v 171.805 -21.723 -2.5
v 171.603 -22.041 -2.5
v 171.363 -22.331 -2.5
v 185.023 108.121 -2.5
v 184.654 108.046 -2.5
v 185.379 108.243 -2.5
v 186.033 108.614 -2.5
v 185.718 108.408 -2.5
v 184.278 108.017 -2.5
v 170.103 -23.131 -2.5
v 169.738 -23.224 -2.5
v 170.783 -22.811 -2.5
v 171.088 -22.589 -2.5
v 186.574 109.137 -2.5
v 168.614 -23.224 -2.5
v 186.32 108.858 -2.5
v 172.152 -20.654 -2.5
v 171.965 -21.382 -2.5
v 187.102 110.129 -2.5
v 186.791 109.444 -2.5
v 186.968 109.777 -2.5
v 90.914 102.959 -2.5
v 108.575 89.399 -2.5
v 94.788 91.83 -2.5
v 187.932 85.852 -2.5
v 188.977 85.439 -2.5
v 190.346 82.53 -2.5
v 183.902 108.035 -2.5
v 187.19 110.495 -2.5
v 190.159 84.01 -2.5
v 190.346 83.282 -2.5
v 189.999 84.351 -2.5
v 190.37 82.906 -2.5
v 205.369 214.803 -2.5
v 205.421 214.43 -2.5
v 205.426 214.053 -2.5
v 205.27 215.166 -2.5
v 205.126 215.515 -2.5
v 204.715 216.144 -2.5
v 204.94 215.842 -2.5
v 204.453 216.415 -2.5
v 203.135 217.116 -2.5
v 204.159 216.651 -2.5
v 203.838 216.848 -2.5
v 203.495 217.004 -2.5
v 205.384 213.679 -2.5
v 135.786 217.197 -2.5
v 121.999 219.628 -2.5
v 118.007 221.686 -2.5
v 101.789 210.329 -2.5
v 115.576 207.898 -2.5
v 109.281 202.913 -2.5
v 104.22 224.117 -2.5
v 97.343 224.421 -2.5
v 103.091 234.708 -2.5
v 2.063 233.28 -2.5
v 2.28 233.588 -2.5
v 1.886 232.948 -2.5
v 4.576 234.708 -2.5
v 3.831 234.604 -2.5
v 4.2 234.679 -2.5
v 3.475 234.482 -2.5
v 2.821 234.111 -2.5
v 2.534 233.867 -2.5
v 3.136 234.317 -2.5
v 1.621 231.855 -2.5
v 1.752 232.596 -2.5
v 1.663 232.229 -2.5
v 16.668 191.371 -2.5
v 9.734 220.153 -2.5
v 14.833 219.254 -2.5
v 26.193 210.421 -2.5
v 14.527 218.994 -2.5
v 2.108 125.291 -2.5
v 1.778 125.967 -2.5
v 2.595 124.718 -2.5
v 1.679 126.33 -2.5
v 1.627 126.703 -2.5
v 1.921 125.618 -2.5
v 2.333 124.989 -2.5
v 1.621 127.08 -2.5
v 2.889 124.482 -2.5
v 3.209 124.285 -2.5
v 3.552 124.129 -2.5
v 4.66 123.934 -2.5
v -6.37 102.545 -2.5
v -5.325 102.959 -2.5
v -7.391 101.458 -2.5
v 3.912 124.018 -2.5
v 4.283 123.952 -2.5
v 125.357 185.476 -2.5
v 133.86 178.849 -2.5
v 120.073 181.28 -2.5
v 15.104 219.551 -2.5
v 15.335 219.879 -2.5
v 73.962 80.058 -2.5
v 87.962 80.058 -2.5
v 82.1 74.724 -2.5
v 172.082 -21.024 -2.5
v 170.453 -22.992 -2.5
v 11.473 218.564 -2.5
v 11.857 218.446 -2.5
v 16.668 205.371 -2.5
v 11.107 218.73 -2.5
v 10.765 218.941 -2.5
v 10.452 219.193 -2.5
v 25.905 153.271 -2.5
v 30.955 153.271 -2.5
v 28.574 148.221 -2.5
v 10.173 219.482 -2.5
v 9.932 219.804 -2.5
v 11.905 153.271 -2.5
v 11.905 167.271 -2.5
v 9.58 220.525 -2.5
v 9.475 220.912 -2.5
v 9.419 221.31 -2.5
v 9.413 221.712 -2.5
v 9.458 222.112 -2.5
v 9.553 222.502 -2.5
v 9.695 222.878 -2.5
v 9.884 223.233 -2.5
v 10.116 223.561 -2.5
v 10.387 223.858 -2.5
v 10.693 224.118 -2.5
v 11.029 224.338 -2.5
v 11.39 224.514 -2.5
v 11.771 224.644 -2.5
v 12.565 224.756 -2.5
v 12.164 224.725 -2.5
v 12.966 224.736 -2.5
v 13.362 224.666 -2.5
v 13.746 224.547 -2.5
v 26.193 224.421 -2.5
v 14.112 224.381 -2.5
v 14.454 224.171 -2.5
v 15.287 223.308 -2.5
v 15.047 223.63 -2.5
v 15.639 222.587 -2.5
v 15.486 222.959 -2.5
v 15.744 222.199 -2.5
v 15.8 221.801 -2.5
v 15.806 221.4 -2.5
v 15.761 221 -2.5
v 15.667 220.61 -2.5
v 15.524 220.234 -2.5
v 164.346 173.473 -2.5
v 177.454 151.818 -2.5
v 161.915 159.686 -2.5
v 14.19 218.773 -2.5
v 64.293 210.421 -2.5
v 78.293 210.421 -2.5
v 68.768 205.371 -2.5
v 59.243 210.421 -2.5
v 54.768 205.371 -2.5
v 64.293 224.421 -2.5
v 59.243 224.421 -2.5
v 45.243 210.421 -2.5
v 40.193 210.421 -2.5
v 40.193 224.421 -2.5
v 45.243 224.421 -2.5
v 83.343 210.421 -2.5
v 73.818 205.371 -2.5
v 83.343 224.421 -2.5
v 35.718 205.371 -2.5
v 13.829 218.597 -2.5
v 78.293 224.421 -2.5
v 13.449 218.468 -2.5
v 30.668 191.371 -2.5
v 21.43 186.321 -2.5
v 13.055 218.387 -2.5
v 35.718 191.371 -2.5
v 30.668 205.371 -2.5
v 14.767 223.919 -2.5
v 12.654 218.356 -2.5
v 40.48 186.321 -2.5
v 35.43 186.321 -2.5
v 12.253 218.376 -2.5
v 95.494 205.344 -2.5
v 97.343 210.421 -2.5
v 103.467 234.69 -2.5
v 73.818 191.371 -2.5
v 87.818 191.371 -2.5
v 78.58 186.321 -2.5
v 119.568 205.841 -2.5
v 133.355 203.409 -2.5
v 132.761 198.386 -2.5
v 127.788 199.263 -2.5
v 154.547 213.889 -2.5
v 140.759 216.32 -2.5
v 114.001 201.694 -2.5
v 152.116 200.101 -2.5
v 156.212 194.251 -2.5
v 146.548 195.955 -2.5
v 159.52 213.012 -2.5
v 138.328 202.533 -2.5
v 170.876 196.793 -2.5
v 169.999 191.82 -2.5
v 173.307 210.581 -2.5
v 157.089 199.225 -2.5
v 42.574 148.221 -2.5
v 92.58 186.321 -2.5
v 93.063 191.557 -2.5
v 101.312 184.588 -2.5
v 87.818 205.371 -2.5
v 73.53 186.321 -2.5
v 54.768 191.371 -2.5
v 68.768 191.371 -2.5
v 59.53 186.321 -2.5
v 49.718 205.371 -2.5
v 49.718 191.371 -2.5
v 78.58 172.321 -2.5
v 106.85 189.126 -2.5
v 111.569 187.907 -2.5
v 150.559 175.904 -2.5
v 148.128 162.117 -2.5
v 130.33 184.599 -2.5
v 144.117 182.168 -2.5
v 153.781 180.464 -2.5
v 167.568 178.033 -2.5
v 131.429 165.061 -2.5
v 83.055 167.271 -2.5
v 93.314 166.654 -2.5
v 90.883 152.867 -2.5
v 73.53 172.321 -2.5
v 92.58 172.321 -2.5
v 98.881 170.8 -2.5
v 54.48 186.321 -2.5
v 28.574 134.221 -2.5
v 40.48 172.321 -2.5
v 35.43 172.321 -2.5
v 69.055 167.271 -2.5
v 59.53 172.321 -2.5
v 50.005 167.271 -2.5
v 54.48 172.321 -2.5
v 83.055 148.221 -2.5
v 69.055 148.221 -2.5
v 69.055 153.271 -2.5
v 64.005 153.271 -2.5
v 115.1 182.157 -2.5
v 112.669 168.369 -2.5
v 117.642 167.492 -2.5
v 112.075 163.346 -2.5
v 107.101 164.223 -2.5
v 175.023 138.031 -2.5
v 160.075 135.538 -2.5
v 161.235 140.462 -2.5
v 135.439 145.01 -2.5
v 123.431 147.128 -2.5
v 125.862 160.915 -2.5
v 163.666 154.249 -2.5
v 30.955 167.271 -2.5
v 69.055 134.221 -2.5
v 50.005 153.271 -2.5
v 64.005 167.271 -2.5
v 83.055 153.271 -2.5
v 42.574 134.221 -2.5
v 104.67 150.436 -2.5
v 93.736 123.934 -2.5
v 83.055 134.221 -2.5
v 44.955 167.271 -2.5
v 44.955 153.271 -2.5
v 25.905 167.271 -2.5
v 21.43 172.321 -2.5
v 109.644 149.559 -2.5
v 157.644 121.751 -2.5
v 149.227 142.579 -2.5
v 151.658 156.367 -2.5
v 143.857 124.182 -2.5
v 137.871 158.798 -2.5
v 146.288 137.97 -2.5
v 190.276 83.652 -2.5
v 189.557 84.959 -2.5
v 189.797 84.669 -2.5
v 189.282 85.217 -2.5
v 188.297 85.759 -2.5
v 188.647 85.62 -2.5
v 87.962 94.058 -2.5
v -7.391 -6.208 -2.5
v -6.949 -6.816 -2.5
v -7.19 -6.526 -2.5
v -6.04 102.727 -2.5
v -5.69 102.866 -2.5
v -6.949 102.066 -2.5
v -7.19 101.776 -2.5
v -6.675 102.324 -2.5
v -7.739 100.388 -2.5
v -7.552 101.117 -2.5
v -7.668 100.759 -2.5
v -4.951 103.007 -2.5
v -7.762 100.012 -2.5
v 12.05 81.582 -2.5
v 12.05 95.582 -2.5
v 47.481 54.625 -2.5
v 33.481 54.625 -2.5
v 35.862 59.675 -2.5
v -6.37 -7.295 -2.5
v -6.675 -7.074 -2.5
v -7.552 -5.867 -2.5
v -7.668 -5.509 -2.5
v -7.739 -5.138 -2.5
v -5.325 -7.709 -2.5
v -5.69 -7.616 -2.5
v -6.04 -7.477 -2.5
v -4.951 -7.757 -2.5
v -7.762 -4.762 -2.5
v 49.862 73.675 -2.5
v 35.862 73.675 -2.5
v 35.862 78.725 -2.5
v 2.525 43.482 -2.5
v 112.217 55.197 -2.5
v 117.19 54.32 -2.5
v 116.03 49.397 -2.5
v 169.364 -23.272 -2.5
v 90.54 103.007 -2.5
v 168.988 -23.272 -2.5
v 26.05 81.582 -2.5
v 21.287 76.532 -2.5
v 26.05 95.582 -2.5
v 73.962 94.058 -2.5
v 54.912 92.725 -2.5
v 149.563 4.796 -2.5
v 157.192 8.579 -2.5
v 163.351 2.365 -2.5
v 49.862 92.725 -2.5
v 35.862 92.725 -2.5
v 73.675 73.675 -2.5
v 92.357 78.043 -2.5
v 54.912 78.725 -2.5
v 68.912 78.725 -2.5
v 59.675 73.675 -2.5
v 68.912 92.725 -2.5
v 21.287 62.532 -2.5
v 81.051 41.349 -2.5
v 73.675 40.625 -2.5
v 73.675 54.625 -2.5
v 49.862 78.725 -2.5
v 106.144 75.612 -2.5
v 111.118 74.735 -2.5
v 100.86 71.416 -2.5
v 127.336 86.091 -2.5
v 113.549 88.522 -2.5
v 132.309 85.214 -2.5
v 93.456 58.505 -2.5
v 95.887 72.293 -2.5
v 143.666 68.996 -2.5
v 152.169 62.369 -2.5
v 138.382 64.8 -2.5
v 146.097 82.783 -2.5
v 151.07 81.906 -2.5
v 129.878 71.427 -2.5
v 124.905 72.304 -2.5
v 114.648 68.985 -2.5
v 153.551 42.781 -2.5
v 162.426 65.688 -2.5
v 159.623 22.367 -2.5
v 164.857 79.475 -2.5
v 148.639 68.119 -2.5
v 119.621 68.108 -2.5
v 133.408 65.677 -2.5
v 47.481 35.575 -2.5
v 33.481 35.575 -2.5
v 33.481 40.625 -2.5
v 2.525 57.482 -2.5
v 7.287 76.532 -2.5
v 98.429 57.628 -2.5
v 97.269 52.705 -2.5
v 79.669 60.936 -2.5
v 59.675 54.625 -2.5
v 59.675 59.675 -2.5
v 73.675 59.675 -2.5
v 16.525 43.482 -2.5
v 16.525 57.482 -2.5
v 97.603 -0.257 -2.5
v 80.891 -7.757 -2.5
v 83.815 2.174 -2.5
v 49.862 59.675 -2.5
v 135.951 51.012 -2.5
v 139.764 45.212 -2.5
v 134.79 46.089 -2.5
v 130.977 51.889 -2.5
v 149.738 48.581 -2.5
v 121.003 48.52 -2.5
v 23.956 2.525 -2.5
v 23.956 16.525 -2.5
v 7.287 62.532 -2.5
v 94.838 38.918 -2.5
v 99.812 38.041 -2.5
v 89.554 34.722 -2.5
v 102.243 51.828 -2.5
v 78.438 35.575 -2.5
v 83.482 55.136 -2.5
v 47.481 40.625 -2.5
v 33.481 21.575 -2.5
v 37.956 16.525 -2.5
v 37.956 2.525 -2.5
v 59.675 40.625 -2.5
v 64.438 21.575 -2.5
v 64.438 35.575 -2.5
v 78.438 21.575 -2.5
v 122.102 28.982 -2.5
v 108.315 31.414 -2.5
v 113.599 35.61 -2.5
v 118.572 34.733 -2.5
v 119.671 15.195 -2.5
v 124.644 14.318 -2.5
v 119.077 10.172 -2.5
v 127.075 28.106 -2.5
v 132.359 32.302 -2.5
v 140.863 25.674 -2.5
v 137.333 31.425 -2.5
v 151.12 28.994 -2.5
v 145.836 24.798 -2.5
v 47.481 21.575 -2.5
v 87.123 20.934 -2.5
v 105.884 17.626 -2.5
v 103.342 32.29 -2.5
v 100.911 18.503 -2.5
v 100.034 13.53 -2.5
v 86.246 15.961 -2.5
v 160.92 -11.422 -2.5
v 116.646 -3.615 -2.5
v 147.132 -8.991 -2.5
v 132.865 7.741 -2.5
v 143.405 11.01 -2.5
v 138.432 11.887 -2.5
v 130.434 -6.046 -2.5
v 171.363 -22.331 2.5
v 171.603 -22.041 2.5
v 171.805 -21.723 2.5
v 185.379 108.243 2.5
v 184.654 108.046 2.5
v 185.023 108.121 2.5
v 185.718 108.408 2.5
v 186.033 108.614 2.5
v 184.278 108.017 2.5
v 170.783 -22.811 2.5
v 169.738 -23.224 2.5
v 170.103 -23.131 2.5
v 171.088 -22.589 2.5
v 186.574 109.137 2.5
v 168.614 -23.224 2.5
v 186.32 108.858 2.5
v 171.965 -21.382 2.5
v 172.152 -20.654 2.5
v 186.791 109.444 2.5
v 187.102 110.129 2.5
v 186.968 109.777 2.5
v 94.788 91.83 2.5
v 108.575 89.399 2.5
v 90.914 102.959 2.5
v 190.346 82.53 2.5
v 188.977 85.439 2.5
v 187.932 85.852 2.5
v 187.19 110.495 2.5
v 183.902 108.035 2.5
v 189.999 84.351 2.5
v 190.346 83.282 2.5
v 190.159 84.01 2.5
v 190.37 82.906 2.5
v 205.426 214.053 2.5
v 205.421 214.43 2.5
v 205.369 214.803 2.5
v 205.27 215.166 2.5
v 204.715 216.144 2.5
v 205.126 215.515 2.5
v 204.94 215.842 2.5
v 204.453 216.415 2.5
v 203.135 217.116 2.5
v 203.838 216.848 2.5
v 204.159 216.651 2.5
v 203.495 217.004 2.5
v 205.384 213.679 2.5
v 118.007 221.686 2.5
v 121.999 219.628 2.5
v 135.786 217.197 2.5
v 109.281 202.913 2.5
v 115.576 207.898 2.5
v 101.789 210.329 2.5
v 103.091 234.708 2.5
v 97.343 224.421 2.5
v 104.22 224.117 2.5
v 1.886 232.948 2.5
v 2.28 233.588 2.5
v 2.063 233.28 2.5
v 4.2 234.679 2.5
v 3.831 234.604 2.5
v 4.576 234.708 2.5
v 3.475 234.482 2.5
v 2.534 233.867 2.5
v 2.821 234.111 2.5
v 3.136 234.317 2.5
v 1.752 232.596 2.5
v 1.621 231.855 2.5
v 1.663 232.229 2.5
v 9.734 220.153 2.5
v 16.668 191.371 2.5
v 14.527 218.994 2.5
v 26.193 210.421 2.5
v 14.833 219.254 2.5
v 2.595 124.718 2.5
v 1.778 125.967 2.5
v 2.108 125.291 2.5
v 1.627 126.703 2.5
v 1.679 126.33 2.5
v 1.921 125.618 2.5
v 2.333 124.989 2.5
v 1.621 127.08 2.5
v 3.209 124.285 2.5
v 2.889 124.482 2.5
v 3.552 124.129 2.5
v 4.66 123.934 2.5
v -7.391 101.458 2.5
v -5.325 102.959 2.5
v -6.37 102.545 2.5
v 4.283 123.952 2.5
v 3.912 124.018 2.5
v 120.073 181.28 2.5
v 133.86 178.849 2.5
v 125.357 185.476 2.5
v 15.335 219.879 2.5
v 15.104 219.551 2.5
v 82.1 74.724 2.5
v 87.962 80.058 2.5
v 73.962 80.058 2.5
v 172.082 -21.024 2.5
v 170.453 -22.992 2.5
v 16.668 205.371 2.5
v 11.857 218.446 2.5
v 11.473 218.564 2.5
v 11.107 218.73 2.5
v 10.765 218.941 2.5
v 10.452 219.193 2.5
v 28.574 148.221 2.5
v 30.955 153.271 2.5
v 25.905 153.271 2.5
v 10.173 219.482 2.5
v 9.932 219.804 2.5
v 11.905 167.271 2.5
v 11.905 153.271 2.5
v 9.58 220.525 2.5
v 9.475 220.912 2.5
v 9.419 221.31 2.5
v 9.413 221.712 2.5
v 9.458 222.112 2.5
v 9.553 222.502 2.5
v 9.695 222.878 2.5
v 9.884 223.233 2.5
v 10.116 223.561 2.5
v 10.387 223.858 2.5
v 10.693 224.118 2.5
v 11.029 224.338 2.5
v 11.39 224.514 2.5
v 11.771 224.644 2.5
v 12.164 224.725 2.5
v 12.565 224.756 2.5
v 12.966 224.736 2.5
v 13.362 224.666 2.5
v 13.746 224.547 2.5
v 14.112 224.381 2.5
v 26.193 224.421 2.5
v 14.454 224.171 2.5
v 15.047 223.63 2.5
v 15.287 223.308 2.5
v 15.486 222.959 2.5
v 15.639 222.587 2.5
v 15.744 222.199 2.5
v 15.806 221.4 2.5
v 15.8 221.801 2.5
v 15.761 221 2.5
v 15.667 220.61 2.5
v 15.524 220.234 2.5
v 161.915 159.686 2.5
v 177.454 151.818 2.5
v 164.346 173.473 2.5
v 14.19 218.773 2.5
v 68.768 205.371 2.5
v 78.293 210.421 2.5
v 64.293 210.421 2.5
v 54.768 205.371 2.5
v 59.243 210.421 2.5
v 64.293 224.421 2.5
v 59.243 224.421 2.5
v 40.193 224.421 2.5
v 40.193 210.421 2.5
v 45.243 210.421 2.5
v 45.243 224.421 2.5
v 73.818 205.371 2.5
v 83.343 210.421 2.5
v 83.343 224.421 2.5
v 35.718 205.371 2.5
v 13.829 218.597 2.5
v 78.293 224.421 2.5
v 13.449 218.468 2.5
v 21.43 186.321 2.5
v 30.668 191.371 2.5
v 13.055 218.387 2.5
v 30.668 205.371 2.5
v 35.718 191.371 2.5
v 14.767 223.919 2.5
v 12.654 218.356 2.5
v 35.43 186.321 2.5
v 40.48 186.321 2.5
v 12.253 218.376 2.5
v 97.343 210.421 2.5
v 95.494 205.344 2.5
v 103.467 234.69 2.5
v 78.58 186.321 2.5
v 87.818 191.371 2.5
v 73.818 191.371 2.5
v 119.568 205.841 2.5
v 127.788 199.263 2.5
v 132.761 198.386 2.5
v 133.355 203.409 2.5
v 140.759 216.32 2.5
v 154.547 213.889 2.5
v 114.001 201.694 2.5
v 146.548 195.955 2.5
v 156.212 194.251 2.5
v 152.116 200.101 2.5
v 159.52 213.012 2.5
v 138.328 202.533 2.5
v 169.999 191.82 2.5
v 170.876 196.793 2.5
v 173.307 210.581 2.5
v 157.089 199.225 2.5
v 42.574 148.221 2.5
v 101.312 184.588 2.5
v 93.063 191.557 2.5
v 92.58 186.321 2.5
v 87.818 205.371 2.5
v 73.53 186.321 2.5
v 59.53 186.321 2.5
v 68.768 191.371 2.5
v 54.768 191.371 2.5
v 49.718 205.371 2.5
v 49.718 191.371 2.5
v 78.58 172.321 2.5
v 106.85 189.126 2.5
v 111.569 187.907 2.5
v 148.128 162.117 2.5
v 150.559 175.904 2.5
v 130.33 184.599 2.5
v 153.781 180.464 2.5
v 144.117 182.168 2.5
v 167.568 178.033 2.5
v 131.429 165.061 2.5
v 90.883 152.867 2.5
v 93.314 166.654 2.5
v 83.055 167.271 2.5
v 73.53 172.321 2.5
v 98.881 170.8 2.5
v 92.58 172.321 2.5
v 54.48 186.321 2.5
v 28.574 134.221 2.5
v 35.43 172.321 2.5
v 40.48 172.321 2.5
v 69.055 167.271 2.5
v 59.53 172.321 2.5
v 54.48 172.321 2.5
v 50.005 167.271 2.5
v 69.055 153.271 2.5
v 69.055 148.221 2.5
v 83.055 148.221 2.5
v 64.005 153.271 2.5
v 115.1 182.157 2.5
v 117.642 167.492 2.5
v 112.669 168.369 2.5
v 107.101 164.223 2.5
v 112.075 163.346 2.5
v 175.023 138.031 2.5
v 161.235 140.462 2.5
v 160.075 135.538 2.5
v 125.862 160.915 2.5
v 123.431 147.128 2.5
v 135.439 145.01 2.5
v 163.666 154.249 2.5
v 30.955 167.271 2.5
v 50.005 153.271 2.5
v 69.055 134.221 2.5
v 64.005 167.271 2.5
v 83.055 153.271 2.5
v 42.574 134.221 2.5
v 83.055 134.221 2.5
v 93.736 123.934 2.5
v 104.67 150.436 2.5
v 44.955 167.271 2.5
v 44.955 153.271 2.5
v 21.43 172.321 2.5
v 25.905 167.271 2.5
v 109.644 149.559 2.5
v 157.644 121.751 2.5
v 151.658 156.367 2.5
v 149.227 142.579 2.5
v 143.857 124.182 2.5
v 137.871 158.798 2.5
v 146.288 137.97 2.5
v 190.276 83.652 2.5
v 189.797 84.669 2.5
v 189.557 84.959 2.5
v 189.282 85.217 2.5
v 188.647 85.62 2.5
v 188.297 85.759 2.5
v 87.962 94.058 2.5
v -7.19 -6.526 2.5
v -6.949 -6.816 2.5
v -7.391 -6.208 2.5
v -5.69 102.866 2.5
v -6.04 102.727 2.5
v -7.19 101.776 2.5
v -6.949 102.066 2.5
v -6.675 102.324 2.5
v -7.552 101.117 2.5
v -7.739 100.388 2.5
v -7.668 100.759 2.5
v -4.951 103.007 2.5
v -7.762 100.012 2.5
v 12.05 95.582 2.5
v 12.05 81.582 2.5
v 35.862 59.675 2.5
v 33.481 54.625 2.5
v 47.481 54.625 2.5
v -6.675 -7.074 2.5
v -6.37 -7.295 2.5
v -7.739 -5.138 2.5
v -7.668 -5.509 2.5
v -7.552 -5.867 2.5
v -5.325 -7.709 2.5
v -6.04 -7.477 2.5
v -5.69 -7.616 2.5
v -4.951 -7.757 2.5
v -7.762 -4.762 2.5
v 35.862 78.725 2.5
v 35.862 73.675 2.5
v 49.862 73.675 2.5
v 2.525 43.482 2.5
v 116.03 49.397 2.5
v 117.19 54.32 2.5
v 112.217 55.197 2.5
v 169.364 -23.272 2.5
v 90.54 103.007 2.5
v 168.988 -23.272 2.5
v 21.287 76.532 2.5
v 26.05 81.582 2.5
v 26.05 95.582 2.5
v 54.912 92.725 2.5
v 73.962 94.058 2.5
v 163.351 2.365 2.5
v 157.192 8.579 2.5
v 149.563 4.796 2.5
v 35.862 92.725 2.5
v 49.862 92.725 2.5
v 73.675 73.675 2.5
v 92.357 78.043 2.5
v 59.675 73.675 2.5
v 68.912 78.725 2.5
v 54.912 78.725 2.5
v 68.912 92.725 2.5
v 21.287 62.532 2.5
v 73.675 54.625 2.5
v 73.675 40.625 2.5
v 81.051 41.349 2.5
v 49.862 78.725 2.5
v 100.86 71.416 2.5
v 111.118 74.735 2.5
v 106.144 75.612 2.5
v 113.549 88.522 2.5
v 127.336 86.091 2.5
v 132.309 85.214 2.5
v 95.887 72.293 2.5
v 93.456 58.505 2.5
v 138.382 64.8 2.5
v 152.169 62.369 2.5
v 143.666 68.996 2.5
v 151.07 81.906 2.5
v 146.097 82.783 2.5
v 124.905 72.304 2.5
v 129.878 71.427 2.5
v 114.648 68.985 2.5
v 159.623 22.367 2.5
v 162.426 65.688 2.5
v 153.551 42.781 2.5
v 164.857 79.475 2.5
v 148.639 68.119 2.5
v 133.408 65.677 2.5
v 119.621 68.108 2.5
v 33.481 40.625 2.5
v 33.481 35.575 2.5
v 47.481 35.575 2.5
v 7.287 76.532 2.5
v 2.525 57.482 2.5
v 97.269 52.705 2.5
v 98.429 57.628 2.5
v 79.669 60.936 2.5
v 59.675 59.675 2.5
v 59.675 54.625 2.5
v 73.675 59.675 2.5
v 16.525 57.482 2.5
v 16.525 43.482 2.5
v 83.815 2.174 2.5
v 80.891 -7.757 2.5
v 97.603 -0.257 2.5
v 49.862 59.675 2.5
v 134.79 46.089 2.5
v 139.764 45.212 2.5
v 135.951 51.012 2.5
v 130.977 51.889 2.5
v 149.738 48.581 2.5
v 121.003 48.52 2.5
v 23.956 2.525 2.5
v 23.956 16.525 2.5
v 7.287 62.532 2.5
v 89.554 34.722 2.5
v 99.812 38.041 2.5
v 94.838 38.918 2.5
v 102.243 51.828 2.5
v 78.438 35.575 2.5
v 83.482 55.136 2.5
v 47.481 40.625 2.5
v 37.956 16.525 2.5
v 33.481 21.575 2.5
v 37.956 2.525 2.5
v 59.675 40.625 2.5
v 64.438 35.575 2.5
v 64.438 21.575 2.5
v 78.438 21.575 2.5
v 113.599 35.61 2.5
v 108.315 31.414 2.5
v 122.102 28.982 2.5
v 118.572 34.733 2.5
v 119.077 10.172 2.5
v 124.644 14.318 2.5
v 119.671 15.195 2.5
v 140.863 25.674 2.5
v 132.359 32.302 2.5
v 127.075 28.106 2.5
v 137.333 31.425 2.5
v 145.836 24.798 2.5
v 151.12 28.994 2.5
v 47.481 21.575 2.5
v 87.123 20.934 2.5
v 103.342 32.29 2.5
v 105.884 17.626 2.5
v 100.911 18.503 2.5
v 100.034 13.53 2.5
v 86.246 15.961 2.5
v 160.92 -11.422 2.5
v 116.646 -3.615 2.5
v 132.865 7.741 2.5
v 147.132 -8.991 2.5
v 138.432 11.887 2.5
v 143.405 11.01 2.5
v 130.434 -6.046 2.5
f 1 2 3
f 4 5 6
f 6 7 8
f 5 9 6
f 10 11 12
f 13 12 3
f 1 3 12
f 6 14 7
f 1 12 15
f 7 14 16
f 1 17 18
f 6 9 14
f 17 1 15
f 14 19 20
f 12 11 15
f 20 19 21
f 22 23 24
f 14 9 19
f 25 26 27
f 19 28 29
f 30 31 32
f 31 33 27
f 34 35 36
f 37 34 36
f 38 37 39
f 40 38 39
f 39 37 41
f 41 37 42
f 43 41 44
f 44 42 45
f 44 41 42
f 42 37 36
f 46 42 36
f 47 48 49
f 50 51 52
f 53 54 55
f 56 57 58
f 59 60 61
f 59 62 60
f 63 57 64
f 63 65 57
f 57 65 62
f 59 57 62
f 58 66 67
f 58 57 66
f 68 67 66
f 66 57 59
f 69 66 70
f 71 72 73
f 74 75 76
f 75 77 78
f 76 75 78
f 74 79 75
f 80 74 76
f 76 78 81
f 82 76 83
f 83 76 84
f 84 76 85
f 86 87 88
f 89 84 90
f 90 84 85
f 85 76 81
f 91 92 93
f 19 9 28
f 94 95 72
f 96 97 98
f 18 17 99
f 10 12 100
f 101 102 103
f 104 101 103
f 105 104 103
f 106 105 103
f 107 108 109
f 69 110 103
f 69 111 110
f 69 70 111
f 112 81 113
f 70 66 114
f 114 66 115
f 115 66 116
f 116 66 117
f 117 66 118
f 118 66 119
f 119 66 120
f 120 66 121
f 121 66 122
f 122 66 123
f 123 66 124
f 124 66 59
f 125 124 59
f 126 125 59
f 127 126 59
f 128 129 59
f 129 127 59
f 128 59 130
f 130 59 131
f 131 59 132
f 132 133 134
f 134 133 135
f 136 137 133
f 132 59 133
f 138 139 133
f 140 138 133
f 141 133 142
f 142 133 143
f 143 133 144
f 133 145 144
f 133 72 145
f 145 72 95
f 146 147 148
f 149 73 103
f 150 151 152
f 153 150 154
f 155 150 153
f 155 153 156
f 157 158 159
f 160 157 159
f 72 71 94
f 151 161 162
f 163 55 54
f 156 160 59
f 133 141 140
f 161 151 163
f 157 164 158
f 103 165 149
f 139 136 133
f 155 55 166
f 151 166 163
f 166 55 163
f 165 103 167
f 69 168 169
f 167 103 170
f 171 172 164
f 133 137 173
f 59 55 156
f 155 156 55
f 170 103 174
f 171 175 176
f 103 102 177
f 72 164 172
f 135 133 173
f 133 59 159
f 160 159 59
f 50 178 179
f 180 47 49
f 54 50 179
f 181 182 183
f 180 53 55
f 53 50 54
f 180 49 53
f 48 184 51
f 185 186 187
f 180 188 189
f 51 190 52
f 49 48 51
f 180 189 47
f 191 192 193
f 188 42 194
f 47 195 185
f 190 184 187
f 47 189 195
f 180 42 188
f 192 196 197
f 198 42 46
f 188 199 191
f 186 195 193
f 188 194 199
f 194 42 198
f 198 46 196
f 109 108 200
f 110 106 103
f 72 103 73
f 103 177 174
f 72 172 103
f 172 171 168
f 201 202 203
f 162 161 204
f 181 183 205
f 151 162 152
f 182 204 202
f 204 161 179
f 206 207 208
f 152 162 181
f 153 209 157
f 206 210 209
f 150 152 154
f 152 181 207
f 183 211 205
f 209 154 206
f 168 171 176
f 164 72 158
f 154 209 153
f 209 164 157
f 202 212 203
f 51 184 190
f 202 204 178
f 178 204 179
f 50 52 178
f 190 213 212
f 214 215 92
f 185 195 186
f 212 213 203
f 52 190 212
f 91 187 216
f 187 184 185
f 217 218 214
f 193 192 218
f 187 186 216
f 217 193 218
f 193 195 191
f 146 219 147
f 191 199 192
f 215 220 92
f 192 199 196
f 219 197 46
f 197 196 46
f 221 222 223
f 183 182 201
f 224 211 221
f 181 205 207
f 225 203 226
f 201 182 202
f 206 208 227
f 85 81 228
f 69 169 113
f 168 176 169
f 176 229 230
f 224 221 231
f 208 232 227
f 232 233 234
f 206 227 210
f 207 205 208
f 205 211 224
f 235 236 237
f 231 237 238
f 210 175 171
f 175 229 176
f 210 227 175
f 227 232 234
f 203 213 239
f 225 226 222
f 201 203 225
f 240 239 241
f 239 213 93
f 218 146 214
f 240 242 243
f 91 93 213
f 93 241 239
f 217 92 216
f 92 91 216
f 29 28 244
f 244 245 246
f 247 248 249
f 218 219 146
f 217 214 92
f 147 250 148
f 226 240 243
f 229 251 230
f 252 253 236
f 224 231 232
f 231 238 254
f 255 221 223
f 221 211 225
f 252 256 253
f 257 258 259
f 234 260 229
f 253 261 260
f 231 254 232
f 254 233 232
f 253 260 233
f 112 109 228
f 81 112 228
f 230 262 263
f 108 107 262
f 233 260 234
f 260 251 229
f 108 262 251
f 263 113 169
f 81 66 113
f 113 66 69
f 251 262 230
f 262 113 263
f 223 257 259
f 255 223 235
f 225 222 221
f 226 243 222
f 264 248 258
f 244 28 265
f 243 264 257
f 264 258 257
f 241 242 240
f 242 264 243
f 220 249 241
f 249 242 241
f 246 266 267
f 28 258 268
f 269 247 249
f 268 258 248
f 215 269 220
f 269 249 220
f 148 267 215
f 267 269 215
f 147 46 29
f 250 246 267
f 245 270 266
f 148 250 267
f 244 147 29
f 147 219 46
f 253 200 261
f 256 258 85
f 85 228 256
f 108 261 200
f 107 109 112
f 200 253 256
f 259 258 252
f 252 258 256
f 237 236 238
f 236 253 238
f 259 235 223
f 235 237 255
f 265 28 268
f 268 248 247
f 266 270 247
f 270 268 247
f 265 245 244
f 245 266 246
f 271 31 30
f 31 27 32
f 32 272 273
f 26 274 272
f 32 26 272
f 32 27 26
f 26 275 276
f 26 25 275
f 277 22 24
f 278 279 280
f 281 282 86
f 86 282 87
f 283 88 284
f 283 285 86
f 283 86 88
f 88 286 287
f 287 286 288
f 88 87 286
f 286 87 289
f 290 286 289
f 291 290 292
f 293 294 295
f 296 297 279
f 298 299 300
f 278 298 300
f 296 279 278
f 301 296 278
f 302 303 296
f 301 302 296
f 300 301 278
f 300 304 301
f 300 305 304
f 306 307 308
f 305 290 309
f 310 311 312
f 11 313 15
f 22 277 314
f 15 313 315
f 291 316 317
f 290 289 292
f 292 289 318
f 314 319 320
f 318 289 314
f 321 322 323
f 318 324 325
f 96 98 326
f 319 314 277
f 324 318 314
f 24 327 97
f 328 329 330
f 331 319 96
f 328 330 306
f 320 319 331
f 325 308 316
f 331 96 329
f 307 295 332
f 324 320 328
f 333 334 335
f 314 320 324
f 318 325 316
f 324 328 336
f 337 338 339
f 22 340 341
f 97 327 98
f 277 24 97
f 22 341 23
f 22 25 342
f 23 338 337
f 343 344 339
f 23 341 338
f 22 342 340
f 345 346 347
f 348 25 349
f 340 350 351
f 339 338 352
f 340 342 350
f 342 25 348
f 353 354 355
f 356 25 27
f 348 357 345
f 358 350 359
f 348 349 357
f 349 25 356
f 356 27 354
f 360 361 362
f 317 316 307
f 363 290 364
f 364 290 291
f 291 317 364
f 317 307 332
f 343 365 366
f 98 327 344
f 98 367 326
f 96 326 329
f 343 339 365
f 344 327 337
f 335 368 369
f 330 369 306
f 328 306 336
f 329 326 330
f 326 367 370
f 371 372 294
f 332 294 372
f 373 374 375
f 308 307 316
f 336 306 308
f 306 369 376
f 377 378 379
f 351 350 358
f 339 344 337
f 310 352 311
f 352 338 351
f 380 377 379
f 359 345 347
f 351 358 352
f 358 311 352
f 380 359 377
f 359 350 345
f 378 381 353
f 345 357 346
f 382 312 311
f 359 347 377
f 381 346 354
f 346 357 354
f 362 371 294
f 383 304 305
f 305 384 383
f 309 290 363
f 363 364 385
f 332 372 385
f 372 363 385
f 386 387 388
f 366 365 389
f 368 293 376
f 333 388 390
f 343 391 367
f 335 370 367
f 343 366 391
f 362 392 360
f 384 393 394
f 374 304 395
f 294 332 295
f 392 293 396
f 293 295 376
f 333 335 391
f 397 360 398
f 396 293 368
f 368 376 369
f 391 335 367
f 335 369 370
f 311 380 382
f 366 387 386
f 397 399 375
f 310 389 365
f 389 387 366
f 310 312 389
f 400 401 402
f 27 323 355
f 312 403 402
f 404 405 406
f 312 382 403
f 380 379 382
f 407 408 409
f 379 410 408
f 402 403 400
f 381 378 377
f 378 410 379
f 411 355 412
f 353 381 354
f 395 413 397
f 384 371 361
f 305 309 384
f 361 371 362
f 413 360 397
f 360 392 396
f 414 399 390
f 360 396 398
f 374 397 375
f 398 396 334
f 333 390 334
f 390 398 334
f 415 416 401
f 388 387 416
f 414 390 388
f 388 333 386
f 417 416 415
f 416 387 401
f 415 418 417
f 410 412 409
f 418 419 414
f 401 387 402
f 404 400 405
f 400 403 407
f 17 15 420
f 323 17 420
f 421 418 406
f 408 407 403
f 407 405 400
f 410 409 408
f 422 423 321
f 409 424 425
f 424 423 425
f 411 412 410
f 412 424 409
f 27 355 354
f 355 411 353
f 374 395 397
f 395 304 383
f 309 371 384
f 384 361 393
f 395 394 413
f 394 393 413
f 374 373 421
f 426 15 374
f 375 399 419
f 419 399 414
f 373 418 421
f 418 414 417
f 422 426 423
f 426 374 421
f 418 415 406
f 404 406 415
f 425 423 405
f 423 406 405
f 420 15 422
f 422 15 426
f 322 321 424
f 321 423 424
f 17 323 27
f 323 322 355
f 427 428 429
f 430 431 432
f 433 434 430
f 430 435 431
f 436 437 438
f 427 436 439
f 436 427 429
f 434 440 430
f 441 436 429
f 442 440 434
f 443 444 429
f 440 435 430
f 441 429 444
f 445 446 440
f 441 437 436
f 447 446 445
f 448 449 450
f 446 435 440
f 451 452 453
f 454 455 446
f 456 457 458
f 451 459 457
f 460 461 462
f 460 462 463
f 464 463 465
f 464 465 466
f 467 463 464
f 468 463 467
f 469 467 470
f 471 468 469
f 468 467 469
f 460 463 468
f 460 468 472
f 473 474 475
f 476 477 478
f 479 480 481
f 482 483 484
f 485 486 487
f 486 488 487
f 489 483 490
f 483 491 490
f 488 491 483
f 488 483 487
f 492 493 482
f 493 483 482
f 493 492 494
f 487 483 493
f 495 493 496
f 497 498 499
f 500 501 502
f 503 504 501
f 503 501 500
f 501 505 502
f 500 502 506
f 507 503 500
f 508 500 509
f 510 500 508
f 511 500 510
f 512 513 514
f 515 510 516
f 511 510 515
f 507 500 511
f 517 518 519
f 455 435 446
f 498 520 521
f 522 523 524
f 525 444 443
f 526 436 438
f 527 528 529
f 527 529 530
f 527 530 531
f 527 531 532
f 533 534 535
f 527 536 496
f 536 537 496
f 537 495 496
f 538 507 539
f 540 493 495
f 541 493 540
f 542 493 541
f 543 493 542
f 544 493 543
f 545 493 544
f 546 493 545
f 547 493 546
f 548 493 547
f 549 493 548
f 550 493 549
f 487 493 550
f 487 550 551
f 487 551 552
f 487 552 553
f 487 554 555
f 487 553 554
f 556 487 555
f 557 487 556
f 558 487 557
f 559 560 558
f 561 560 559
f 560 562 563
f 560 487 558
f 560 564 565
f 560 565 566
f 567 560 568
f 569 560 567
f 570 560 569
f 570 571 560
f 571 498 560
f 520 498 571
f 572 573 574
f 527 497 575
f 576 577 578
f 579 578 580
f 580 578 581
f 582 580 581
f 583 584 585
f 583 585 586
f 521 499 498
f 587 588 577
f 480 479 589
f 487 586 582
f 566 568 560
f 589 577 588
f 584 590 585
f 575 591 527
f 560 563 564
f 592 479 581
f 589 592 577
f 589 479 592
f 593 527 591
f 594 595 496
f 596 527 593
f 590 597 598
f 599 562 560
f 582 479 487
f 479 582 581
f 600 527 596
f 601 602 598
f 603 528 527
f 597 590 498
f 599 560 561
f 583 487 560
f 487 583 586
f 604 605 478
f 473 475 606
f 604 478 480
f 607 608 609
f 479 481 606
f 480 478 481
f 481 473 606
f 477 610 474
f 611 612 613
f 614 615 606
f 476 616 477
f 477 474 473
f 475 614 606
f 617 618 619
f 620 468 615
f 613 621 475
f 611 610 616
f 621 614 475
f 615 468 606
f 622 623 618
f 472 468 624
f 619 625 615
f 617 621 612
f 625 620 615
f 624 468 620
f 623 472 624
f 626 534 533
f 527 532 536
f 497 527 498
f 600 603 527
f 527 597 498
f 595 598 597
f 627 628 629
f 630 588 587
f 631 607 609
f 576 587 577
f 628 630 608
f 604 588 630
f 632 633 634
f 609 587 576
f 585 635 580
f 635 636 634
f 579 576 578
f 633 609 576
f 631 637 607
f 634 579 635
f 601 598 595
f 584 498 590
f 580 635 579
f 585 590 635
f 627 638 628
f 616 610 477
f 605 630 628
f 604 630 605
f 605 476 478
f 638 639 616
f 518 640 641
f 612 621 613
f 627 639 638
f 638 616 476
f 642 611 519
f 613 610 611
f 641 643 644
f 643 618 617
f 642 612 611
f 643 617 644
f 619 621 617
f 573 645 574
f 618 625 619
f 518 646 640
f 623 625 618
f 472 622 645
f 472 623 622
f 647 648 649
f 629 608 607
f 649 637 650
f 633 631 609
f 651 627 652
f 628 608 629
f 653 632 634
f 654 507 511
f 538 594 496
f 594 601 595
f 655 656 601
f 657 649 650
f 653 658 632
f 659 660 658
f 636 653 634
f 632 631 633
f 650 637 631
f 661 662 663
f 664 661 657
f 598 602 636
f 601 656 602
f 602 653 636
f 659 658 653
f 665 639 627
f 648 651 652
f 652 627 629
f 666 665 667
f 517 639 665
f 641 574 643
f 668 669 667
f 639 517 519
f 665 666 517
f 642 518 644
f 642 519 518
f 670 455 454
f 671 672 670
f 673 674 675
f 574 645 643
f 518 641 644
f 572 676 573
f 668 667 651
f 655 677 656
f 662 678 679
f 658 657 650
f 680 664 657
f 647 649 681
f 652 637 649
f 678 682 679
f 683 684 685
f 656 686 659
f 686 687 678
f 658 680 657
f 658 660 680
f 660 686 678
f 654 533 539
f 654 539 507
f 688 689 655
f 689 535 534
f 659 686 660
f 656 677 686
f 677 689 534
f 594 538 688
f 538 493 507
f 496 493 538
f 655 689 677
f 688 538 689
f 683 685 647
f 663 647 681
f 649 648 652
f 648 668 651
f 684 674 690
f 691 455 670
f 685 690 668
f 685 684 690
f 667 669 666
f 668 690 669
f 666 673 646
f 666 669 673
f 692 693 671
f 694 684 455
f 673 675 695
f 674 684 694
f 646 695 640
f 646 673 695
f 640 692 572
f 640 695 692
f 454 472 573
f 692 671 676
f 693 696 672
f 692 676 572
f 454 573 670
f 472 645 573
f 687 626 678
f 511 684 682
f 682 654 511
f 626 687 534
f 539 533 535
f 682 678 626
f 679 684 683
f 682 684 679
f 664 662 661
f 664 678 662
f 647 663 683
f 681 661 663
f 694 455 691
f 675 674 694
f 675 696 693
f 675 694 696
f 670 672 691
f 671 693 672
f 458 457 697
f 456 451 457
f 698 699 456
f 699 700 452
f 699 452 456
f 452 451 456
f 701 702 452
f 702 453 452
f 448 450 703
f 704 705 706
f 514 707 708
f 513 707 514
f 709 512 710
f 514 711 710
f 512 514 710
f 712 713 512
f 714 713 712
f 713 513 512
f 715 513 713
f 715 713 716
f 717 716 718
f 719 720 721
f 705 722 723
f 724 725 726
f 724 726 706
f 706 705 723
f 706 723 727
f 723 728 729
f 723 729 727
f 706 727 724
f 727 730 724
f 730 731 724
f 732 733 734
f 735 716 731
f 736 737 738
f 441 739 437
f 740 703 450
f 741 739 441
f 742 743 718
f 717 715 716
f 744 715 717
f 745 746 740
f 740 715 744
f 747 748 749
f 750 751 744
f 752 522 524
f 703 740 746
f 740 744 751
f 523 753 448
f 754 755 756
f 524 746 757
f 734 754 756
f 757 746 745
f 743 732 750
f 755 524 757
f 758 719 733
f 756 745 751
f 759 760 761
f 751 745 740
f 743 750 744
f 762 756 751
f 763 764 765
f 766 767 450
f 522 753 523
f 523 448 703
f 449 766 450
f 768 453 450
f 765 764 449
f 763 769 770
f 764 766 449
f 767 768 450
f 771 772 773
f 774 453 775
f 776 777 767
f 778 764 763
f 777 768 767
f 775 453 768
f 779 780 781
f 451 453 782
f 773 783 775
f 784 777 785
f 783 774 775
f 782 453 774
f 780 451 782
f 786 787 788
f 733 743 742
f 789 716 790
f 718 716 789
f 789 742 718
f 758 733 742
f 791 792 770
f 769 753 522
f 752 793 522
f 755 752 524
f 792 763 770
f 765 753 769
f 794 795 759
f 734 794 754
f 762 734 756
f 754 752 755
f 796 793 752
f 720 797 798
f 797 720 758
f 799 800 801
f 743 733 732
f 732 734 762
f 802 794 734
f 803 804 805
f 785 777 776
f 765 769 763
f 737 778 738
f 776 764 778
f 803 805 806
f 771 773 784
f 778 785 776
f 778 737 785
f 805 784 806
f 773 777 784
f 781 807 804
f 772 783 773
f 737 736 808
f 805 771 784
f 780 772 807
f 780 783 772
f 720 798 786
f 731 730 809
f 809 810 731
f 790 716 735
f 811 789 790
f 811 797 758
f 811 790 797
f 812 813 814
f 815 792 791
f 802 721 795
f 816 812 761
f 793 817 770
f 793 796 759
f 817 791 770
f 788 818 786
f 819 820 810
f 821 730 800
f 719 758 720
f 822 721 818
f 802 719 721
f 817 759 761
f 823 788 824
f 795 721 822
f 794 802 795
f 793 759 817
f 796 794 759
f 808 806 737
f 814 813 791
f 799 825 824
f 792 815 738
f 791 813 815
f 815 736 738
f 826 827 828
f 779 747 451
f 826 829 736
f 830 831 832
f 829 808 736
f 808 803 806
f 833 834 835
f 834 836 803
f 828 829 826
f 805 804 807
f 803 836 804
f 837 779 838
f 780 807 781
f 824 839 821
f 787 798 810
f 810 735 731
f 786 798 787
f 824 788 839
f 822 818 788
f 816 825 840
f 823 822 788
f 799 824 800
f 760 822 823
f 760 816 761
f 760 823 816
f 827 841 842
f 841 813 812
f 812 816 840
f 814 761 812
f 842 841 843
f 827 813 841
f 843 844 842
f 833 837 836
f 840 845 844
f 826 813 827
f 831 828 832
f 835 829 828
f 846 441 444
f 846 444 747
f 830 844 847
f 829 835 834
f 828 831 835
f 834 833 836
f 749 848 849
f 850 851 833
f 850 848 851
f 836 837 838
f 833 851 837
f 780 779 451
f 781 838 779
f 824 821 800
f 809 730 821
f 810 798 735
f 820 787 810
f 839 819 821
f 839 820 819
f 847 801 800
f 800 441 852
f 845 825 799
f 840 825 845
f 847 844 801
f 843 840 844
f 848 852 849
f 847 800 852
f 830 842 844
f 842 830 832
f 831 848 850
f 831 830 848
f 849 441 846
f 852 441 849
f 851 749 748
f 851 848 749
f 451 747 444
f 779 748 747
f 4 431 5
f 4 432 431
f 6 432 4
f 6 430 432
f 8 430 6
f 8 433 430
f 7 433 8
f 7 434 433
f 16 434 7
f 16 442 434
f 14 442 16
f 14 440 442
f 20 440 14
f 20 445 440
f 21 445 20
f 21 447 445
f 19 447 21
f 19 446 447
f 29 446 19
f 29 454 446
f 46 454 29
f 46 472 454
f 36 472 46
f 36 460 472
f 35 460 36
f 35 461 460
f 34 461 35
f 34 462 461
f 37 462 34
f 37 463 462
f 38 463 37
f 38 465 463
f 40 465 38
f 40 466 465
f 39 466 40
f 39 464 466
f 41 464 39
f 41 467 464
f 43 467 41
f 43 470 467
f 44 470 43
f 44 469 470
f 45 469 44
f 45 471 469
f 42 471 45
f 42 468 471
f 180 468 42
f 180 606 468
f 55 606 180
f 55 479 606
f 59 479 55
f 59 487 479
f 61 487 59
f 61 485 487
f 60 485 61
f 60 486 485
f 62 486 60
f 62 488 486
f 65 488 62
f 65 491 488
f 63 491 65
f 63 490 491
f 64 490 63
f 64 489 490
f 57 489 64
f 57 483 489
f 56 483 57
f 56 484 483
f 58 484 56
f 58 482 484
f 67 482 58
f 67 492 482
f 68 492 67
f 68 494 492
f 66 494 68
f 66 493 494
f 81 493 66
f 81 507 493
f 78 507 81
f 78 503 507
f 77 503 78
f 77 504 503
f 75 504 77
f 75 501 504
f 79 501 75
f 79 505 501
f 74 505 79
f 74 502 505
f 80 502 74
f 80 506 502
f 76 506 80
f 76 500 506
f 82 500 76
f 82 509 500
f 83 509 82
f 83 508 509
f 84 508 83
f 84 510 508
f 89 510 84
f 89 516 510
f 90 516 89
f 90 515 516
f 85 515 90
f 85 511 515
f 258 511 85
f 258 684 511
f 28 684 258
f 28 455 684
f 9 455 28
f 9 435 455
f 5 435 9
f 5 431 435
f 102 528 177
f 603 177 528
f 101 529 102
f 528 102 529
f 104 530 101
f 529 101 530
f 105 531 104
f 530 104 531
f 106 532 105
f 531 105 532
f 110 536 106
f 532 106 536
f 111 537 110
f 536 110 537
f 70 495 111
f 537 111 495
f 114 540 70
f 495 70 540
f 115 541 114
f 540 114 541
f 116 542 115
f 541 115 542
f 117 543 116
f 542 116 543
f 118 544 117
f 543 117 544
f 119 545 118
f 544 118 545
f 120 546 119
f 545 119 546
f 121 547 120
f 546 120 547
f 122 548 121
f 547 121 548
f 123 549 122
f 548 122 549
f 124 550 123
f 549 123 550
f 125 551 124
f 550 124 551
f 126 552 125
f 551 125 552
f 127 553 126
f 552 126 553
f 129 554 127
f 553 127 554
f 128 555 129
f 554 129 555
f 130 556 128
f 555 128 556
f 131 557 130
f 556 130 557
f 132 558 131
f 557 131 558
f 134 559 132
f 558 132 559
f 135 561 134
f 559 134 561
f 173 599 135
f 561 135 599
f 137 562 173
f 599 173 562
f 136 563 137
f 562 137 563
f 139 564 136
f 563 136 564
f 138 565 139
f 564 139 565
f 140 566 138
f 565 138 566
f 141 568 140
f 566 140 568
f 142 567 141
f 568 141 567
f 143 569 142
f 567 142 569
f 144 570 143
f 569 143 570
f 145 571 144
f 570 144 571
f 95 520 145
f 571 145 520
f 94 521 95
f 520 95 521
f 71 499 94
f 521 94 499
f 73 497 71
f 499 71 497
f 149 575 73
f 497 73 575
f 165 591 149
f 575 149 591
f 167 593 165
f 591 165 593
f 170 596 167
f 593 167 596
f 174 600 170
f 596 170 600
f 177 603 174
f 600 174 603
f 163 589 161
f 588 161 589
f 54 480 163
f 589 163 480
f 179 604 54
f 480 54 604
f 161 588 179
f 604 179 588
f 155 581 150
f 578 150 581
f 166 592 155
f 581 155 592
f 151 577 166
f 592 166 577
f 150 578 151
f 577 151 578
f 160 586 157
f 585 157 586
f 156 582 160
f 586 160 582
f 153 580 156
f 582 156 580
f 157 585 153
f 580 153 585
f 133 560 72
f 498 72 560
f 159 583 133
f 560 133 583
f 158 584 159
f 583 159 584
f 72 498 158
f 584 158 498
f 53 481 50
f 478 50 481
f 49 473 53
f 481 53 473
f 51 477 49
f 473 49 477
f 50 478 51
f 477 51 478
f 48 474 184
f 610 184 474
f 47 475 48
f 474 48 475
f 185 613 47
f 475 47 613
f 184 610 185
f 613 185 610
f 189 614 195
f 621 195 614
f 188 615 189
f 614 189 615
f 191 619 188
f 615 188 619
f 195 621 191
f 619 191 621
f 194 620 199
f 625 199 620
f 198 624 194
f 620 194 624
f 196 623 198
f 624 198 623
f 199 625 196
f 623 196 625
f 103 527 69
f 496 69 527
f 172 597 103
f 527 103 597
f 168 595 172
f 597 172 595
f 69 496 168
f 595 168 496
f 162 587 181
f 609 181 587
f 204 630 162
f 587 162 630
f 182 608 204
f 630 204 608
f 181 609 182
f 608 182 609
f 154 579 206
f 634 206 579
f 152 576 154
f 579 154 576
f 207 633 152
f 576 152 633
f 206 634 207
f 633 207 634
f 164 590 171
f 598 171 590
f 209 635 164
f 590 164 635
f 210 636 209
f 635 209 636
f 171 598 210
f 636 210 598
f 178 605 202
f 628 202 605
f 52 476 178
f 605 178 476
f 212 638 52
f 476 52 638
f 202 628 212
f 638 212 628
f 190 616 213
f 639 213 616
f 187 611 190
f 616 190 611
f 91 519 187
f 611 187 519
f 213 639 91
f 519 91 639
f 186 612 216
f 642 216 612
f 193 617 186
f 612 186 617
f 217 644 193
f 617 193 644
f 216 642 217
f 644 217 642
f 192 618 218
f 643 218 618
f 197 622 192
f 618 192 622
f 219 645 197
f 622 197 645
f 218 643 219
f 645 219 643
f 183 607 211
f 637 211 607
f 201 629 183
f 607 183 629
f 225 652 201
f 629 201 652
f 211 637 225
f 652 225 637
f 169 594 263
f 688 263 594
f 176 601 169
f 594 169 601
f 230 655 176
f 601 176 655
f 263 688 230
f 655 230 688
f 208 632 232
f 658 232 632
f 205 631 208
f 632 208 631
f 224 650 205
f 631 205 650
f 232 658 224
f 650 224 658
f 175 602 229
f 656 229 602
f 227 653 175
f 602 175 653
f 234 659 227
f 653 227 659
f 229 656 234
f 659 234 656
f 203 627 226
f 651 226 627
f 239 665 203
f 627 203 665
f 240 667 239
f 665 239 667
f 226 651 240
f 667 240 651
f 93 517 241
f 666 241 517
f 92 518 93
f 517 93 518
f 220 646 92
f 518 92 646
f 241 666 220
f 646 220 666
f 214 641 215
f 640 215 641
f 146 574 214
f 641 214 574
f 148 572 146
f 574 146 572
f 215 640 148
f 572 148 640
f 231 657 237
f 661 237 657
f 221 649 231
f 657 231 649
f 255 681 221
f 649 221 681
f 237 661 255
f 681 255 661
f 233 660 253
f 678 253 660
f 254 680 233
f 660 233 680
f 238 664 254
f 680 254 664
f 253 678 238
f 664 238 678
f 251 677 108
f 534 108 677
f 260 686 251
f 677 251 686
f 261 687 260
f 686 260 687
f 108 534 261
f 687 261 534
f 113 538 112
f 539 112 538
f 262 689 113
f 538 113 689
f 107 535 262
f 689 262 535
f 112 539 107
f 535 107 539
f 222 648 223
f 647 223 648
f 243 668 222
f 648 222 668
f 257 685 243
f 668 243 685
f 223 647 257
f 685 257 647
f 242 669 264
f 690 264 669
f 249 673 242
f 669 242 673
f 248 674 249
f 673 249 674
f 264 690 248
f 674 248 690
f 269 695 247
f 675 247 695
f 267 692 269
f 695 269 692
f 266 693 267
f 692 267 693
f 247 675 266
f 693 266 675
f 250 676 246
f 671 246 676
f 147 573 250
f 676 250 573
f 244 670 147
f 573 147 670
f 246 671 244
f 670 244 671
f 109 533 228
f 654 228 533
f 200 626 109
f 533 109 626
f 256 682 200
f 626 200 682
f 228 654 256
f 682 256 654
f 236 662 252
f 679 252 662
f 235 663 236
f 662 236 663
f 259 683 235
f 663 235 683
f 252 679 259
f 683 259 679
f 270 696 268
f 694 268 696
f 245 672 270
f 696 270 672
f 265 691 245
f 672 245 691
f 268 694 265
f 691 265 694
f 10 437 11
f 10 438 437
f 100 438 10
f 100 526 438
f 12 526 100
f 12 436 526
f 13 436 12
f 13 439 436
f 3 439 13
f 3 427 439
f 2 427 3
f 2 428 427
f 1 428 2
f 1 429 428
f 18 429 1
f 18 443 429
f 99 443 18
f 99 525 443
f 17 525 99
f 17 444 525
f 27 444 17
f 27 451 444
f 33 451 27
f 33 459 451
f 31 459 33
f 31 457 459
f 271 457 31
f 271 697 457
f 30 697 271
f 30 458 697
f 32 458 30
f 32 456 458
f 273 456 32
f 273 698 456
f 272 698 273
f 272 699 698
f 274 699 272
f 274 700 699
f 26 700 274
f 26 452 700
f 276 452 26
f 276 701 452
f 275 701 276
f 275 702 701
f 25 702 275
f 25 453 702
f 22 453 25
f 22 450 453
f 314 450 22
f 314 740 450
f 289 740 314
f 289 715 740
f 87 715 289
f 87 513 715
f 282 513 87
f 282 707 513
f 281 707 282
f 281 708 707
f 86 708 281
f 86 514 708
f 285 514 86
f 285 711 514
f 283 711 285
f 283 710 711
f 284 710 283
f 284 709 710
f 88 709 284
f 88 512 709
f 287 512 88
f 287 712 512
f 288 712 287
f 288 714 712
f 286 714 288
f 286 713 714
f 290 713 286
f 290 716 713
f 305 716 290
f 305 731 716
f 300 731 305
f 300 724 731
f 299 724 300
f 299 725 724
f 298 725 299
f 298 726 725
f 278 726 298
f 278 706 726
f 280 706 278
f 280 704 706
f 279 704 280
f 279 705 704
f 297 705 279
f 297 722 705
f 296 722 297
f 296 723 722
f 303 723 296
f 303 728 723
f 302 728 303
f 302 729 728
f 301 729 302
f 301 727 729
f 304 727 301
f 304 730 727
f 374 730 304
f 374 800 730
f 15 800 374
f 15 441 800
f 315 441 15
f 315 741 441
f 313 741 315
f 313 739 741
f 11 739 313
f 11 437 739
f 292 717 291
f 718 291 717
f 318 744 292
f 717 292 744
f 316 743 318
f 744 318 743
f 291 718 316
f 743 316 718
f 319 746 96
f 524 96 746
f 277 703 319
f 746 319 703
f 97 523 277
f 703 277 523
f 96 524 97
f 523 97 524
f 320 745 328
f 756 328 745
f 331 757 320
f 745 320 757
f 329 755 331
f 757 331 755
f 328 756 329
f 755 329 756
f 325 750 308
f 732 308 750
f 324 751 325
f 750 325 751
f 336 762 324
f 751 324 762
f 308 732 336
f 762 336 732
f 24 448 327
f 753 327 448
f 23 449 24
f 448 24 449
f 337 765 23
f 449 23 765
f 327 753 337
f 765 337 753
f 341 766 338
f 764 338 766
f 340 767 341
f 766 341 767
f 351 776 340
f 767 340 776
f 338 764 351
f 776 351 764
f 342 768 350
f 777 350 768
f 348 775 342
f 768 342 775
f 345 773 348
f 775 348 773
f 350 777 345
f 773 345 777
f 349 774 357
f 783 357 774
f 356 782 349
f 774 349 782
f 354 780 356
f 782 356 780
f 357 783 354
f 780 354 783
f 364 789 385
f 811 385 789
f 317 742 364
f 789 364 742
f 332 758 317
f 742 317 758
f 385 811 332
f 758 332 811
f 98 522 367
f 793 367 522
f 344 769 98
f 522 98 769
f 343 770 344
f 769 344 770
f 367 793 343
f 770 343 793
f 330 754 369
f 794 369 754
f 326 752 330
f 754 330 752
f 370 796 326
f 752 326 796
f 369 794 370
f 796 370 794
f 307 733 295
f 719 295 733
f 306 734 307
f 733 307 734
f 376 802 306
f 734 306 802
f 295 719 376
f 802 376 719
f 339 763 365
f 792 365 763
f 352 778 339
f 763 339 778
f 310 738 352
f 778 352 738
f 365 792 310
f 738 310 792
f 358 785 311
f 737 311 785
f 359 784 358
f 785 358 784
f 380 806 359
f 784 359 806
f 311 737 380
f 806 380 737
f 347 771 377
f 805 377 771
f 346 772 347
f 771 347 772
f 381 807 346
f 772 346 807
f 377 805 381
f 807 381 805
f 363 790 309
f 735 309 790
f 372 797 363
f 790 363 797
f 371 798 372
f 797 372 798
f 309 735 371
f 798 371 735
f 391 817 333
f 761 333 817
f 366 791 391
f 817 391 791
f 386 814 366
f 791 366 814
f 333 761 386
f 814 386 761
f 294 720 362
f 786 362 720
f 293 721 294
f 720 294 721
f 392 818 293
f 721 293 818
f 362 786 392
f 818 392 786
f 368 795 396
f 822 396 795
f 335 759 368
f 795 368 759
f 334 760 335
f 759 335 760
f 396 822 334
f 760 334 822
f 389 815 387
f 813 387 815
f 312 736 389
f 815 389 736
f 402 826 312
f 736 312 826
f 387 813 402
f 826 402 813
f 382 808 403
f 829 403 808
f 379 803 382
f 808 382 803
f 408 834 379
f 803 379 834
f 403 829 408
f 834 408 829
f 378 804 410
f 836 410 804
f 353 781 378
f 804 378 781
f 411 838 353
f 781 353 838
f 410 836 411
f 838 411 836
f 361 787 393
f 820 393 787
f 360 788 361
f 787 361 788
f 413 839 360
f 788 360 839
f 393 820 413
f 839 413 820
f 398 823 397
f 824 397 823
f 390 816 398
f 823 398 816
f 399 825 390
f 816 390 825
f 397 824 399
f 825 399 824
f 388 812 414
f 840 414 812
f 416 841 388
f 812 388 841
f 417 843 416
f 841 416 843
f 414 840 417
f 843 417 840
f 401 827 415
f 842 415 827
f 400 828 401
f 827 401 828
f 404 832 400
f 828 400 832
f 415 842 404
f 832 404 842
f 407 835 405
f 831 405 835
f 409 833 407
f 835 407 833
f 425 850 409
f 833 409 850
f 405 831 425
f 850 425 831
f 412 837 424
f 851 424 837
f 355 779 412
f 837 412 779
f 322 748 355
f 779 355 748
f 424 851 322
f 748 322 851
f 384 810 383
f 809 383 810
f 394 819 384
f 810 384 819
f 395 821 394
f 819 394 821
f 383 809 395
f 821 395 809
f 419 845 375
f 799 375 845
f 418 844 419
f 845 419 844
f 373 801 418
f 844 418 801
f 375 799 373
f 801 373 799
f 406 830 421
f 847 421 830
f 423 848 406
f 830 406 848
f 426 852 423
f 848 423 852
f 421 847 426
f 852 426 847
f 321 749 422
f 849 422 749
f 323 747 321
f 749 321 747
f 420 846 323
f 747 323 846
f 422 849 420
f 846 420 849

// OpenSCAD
// file: const.scad
KNOB_LEFT = 1;
KNOB_RIGHT = 2;

TYPE_A = "A";
TYPE_B = "B";
TYPE_C = "C";
// main file
include <base.scad>;

linear_extrude(height=PLATE_HEIGHT, center=true)
    union() {
        left(TYPE_B);
        right(TYPE_B);
    }
